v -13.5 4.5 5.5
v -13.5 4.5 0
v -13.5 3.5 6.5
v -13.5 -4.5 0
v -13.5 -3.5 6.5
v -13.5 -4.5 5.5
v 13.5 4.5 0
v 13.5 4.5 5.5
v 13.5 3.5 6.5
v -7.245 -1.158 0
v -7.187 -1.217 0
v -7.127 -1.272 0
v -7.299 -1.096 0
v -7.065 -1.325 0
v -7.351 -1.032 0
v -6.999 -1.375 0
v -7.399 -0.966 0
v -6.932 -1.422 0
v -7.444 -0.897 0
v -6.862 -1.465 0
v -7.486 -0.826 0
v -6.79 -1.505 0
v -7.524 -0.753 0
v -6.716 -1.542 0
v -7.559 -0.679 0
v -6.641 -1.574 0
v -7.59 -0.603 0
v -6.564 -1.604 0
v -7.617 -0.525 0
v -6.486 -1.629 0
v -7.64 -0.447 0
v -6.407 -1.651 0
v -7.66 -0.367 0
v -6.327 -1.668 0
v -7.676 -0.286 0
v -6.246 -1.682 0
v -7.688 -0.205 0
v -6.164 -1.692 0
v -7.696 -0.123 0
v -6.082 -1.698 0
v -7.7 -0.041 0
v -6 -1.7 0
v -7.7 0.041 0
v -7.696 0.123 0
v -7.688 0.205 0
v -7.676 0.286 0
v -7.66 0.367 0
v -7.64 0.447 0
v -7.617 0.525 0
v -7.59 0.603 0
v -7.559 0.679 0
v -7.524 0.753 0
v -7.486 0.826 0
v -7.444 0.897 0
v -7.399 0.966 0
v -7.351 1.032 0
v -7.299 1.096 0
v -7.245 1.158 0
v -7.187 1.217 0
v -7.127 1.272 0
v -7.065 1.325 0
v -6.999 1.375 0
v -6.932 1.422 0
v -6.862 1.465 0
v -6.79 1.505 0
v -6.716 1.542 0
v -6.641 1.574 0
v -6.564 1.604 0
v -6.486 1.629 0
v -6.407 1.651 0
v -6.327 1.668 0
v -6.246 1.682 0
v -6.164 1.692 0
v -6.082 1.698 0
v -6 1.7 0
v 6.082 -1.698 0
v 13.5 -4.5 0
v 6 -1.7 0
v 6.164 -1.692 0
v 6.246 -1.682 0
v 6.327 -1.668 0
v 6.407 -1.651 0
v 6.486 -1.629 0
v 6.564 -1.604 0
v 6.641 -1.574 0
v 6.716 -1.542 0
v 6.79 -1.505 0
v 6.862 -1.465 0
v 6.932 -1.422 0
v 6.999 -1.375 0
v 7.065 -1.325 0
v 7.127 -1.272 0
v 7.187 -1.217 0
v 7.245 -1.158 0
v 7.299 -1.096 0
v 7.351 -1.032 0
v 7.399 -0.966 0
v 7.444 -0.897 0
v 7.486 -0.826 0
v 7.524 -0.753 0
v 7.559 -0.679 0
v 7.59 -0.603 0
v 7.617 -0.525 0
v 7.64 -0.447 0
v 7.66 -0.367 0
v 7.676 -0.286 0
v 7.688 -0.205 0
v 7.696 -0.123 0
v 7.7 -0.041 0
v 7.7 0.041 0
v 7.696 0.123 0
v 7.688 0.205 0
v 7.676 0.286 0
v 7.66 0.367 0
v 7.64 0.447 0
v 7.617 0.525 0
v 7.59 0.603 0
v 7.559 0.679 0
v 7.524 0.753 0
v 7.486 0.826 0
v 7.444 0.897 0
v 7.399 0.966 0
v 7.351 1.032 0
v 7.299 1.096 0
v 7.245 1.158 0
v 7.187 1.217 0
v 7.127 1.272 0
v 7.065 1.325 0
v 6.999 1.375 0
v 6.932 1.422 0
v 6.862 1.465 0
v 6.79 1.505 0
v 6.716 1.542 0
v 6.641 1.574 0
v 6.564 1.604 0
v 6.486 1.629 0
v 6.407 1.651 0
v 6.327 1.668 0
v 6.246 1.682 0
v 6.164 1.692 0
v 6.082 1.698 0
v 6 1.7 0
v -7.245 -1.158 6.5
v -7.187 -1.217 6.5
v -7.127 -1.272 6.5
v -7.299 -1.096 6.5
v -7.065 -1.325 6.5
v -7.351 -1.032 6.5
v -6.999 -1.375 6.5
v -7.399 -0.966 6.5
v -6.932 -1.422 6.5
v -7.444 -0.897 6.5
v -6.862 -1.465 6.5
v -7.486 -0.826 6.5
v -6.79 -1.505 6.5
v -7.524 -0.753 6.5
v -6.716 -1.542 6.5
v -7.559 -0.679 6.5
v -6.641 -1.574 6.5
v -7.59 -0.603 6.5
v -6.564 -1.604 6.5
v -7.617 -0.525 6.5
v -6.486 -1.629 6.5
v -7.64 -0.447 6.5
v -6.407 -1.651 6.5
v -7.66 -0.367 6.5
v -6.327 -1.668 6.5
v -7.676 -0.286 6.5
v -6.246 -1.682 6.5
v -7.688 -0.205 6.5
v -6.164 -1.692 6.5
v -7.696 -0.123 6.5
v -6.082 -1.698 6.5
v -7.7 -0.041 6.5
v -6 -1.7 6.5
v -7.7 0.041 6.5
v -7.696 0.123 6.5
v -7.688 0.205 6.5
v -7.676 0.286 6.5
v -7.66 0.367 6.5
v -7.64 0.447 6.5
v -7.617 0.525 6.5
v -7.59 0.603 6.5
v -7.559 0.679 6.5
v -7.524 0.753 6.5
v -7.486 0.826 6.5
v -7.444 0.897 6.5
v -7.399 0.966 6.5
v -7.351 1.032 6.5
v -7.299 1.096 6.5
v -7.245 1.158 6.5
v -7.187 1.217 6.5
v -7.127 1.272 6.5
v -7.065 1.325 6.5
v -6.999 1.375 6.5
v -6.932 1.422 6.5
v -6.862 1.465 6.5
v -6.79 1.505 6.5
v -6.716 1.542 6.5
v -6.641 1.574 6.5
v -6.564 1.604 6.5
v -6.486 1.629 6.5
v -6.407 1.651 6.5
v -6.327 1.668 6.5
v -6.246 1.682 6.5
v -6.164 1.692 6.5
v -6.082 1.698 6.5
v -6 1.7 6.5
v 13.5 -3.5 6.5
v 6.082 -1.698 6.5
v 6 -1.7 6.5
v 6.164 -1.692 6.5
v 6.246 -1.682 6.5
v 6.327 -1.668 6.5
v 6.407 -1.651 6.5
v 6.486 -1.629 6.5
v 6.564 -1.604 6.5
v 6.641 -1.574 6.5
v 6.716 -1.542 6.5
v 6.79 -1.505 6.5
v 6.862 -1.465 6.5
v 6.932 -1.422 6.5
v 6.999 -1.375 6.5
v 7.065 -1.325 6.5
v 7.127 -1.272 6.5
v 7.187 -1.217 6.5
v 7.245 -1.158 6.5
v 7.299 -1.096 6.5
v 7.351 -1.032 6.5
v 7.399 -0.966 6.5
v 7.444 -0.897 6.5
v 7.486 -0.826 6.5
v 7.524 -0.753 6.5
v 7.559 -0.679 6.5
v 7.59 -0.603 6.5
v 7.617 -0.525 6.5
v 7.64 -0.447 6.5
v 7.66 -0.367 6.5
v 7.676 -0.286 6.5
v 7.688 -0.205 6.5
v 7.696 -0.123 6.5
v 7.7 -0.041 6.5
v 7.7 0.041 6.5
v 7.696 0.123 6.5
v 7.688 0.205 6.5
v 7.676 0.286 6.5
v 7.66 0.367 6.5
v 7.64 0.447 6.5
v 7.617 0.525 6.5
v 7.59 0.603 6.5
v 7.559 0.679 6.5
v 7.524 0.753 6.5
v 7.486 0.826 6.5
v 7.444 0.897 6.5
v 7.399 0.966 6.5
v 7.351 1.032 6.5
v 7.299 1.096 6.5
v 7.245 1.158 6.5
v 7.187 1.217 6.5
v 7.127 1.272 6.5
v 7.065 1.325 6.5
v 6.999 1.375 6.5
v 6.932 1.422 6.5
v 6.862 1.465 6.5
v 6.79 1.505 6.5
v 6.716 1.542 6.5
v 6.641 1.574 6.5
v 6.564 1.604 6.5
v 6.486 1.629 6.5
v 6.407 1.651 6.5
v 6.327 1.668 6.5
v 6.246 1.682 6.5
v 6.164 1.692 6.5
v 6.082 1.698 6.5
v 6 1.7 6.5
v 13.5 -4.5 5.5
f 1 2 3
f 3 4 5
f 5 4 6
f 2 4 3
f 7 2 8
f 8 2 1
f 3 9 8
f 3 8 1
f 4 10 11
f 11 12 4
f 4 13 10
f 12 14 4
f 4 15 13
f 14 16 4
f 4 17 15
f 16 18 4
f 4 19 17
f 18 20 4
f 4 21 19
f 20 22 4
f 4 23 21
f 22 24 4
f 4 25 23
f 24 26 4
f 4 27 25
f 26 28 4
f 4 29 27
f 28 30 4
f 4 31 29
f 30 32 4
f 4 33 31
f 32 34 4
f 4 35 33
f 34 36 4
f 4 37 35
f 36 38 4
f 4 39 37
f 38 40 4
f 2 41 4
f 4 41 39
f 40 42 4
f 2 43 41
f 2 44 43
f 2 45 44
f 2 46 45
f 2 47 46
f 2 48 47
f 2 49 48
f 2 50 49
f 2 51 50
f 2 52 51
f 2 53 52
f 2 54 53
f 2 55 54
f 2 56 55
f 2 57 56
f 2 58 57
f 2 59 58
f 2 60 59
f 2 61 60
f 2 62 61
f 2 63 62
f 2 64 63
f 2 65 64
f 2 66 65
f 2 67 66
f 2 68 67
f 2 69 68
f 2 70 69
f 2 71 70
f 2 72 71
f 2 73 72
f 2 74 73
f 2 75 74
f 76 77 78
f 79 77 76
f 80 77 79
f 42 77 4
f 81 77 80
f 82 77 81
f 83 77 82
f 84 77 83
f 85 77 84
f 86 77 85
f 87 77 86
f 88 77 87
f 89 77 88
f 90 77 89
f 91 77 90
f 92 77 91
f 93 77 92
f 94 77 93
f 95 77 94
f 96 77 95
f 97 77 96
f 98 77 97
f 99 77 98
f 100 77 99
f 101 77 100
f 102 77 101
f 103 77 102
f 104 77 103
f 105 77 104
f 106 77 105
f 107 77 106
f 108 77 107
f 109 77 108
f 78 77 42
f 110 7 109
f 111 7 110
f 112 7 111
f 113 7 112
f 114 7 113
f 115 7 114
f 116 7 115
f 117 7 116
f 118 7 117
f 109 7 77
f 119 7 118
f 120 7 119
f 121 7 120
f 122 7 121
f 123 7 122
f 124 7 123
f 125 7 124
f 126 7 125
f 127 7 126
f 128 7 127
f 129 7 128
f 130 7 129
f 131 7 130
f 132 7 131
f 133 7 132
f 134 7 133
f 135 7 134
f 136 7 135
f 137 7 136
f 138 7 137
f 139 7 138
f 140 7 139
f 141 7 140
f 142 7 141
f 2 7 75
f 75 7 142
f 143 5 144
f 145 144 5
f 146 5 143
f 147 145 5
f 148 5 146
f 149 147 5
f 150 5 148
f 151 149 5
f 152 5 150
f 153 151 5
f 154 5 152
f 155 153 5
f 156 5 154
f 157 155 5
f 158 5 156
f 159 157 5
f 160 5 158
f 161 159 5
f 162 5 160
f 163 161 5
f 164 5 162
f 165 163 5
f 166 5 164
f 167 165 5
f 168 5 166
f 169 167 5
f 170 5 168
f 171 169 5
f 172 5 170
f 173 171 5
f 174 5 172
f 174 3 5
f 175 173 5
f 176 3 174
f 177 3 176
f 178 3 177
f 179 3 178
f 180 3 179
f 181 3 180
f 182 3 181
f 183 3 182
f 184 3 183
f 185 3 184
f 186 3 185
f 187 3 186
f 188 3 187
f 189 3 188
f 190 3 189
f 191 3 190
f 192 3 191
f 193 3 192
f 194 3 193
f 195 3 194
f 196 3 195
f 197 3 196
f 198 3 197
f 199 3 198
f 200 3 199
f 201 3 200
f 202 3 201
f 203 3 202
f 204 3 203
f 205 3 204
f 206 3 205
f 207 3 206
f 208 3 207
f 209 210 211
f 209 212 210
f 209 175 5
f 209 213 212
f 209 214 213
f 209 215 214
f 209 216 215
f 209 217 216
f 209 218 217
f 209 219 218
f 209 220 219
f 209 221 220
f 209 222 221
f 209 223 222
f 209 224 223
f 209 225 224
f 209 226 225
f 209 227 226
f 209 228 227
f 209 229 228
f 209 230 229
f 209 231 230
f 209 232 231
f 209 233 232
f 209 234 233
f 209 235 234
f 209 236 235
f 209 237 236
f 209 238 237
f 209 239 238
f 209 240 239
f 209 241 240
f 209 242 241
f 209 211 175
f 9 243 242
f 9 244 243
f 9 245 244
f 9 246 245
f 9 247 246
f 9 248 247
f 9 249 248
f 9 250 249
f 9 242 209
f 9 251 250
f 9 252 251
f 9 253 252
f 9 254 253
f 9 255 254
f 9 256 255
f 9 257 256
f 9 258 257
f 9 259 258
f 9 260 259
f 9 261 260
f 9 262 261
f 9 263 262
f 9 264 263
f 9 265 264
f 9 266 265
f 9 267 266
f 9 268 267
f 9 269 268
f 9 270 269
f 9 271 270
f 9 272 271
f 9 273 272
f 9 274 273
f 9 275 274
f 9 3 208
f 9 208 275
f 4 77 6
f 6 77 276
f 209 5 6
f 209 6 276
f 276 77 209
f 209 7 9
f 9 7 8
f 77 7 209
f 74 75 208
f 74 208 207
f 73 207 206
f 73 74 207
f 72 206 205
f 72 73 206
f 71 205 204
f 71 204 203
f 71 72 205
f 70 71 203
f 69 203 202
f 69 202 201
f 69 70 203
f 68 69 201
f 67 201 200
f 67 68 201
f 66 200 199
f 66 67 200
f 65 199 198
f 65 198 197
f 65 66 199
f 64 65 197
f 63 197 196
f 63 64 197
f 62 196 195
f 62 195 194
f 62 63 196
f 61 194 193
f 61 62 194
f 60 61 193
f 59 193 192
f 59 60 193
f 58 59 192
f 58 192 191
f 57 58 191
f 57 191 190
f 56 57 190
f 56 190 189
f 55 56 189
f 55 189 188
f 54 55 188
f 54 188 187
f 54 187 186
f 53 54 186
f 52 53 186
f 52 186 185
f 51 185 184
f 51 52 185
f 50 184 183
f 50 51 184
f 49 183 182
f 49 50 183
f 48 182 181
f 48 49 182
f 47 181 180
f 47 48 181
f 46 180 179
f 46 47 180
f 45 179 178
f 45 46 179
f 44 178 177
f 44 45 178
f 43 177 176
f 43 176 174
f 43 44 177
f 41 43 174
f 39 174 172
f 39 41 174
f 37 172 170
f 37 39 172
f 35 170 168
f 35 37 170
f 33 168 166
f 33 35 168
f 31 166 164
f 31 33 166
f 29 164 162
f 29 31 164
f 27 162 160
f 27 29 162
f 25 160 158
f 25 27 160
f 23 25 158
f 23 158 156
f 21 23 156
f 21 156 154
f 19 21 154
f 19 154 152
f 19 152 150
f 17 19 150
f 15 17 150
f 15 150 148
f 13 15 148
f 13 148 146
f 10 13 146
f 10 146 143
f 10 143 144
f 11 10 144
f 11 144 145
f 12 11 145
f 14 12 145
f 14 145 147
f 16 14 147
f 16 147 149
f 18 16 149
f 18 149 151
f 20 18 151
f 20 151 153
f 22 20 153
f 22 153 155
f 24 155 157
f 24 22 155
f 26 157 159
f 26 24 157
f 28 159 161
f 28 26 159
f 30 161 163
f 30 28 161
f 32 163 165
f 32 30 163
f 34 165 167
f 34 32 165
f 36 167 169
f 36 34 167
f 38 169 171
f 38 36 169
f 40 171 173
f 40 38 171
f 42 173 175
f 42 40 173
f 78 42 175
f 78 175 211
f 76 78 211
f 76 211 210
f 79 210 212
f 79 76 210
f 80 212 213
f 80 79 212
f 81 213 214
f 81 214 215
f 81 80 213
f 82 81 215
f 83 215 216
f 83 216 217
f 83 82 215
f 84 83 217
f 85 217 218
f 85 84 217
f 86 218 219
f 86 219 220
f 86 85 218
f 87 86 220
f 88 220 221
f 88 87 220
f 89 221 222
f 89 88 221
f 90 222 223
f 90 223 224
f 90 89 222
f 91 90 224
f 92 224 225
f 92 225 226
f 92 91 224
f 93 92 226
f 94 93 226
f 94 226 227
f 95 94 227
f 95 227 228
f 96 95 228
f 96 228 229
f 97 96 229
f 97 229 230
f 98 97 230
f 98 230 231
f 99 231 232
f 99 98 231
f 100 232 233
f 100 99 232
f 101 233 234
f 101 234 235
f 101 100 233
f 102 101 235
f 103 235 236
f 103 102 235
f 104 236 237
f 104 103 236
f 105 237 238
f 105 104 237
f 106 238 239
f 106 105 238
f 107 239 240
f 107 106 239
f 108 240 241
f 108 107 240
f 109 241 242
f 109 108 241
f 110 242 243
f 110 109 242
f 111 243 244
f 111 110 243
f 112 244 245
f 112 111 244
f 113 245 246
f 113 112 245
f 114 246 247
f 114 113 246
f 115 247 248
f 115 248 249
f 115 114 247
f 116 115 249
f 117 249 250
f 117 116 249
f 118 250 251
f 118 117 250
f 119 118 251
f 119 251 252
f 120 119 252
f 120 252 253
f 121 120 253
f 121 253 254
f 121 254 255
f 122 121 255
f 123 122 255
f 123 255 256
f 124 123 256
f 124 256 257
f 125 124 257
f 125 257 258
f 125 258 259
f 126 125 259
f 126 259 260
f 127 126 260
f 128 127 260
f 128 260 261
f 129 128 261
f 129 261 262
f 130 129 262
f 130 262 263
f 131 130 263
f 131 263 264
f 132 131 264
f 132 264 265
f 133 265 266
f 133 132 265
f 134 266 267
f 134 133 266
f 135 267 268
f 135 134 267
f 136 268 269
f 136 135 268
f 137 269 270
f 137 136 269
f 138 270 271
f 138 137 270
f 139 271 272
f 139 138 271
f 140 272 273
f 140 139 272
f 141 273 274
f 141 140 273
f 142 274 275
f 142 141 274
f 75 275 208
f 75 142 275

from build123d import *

# Parameters (mm, degrees)
SKETCH_W     = 27
SKETCH_H     = 9
PAD_DEPTH    = 6.5
CHAMFER_SIZE = 1


with BuildPart() as part:
    # Sketch → Pad (new body)
    with BuildSketch(Plane.XY):
        Rectangle(SKETCH_W, SKETCH_H)
        with BuildLine():
            ThreePointArc((-6, 1.7), (-7.7, 0), (-6, -1.7))
            Line((-6, -1.7), (6, -1.7))
            ThreePointArc((6, -1.7), (7.7, 0), (6, 1.7))
            Line((-6, 1.7), (6, 1.7))
        make_face(mode=Mode.SUBTRACT)
    extrude(amount=PAD_DEPTH)

    # Chamfer
    chamfer_edges = [part.edges().sort_by_distance(p)[0] for p in [
        (0, -4.5, 6.5),
        (0, 4.5, 6.5),
    ]]
    chamfer(chamfer_edges, length=CHAMFER_SIZE)


solid = part.part
